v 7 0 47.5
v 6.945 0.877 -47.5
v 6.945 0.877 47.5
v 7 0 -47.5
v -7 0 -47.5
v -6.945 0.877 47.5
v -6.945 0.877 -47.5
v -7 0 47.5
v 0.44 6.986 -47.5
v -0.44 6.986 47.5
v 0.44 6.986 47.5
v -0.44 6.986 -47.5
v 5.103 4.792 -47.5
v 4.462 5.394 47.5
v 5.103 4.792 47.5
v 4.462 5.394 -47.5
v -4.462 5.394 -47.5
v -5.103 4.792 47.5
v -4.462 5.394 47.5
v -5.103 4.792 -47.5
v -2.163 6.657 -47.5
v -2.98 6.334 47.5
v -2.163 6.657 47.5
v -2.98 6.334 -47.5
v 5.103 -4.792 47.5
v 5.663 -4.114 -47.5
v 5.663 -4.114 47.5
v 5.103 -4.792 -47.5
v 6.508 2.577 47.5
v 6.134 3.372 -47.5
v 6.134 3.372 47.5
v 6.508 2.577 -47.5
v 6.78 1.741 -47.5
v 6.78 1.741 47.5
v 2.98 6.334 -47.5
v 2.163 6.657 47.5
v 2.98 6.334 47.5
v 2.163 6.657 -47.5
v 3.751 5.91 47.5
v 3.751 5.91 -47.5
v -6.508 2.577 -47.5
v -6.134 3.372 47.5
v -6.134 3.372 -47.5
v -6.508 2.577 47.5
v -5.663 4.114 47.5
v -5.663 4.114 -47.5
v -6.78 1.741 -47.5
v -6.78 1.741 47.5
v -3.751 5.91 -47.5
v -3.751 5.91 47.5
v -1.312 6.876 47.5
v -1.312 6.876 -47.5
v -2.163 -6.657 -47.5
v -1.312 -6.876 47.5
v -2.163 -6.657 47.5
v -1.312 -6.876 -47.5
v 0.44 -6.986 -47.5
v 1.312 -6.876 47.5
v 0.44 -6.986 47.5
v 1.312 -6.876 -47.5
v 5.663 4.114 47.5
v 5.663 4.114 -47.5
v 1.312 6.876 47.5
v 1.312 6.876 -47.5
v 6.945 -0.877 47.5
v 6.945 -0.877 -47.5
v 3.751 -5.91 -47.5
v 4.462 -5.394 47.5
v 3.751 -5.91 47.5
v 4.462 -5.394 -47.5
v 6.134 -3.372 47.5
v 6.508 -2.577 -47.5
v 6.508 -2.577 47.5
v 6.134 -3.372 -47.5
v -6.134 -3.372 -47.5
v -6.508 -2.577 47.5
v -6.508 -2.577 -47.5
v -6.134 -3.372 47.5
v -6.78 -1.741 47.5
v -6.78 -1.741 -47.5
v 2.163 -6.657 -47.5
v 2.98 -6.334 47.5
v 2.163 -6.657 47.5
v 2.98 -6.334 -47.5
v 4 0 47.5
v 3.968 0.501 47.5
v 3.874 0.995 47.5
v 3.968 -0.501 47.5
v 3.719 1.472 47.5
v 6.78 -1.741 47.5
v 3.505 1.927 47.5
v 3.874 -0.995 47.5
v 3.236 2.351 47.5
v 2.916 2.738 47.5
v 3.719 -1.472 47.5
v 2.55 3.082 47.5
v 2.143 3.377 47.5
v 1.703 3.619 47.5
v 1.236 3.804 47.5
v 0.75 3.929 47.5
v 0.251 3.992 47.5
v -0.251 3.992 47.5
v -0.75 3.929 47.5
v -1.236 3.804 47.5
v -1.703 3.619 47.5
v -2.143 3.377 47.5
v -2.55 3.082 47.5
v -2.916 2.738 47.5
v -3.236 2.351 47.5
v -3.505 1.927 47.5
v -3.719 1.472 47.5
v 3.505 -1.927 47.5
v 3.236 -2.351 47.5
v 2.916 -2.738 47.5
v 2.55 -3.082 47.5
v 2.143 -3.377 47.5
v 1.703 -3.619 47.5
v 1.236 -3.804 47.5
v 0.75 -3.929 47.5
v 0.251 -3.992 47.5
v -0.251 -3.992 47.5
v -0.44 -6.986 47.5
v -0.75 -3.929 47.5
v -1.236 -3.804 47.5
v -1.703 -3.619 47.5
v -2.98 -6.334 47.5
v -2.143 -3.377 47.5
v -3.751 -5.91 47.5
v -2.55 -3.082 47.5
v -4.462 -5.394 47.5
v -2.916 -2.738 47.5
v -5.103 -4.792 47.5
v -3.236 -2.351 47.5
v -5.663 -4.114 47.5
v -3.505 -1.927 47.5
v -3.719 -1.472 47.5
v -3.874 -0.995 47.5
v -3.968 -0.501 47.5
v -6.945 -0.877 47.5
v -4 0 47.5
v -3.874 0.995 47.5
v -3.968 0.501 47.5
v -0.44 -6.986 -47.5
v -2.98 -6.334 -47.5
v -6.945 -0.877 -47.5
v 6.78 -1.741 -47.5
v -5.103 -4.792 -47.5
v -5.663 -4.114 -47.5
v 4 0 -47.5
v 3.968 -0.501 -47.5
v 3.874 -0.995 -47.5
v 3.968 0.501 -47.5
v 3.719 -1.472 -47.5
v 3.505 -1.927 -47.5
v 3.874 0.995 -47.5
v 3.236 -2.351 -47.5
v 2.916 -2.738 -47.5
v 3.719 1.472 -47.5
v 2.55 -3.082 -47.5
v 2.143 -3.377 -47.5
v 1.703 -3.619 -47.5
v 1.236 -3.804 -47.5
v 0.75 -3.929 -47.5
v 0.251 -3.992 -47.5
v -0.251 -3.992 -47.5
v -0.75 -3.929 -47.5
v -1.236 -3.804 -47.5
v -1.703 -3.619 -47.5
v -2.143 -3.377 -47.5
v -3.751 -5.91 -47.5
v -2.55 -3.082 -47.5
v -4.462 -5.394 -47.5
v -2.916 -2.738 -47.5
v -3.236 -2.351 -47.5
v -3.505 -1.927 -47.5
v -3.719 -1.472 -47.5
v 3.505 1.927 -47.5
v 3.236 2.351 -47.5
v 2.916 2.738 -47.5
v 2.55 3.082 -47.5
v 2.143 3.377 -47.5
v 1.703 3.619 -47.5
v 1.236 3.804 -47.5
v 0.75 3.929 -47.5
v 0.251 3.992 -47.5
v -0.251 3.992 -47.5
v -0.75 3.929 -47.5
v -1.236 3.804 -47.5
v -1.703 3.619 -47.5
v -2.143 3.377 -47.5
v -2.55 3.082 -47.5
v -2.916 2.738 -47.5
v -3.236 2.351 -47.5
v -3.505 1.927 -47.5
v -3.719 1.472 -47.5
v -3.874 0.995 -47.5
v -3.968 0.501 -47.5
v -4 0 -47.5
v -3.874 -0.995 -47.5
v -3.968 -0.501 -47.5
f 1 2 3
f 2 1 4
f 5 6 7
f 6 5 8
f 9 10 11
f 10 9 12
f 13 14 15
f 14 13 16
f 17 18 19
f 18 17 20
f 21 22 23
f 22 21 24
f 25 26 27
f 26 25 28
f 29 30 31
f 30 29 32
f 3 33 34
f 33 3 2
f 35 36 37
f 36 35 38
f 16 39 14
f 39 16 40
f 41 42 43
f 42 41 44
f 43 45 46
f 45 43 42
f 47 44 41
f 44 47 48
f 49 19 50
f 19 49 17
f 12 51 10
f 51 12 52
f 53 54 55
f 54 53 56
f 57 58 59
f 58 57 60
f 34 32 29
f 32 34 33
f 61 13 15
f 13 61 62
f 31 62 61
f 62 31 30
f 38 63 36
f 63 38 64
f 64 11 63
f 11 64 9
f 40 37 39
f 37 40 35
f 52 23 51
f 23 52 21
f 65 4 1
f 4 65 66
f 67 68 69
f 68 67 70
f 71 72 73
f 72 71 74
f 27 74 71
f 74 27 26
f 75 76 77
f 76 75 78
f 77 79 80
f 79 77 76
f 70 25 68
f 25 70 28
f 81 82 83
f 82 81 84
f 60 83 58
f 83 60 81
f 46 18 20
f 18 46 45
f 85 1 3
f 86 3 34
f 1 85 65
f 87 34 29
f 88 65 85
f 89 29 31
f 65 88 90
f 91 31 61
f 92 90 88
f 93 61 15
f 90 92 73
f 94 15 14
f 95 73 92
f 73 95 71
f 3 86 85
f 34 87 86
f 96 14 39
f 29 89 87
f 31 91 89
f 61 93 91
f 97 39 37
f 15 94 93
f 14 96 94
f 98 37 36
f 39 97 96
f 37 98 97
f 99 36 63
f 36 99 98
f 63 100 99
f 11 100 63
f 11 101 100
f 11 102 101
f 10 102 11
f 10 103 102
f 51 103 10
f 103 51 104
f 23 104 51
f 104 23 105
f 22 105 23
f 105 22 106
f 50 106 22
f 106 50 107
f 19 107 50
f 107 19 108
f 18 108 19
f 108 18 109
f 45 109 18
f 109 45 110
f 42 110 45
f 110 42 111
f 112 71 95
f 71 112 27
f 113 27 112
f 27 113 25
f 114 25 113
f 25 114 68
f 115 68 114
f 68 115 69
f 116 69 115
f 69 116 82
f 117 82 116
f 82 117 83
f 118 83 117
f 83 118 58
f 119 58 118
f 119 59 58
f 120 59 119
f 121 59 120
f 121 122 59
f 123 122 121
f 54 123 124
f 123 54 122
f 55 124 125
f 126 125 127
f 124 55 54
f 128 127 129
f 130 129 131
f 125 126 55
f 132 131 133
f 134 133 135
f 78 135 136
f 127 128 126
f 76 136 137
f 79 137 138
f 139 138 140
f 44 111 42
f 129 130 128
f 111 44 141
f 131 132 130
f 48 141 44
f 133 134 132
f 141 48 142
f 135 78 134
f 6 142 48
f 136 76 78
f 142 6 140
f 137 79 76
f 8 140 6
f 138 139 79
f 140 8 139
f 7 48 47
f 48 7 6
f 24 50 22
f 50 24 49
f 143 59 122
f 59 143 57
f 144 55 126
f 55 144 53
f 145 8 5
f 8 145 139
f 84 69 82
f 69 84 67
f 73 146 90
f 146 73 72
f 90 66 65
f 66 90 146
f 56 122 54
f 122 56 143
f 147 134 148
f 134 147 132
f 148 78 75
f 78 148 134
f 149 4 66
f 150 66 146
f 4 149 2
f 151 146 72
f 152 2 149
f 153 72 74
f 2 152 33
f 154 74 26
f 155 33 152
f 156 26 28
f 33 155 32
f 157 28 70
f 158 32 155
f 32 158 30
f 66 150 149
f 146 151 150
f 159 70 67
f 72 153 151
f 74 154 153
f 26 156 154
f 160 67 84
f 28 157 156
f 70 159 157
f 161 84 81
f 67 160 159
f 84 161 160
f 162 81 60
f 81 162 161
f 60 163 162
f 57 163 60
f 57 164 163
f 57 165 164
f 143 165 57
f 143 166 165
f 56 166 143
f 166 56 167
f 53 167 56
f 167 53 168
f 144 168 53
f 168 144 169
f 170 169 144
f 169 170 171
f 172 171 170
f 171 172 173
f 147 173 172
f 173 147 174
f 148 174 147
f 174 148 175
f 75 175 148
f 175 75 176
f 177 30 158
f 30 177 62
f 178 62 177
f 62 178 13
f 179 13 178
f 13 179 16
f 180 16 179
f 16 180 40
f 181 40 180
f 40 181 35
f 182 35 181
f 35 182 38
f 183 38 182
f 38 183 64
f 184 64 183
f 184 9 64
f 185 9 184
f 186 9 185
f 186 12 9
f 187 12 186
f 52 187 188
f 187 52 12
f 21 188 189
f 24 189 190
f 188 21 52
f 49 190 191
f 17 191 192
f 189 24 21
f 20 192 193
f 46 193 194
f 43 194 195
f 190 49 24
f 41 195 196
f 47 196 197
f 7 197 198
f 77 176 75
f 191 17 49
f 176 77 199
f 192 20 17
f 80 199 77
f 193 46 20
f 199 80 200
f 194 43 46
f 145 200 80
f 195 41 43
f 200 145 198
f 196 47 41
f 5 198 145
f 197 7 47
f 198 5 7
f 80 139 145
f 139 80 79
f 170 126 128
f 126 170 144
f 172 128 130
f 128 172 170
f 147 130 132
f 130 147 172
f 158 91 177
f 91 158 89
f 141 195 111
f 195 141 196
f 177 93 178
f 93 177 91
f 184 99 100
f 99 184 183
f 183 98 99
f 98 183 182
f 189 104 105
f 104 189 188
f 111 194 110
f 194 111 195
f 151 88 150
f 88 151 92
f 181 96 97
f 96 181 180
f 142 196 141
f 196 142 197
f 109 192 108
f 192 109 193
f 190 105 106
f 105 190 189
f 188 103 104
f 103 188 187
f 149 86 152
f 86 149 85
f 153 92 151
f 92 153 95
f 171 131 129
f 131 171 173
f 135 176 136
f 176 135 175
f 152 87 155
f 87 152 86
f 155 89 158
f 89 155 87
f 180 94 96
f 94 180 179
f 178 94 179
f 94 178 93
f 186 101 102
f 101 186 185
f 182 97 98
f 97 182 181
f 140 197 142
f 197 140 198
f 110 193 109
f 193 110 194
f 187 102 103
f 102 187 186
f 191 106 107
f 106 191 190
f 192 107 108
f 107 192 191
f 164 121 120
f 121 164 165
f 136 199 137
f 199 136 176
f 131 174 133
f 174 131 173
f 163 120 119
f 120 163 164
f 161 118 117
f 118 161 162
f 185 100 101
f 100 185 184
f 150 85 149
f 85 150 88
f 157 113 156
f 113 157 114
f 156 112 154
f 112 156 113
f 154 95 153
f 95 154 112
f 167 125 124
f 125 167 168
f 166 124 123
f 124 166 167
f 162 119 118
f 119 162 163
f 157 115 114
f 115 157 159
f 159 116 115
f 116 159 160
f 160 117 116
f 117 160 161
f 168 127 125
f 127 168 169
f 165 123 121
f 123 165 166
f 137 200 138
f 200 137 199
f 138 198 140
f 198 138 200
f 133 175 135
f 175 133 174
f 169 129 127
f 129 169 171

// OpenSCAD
$fn = 50;


difference() {
	union() {
		translate(v = [0, 0, -47.5000000000]) {
			cylinder(h = 95, r = 7.0000000000);
		}
	}
	union() {
		translate(v = [0, 0, -100.0000000000]) {
			cylinder(h = 200, r = 4.0000000000);
		}
	}
}
